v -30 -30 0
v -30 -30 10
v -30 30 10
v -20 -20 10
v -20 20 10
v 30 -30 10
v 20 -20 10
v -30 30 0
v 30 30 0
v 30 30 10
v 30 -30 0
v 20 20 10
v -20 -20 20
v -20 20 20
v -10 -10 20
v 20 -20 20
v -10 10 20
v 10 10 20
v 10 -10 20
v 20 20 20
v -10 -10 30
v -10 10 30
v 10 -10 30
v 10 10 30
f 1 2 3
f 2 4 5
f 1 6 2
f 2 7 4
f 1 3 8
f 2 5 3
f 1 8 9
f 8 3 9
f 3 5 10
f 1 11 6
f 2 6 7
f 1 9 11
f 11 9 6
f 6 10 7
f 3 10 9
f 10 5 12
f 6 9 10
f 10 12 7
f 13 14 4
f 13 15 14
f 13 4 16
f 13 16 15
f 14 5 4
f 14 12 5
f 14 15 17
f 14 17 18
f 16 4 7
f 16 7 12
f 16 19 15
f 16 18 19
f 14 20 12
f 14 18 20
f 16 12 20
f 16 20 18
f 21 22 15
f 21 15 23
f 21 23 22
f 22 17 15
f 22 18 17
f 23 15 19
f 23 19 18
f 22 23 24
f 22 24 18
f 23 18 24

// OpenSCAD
// 3段の階段状ピラミッド
// 各段の高さ (mm)
h = 10;

union() {
    // 1段目（底辺）: 60mm × 60mm × 10mm
    translate([-30, -30, 0])
        cube([60, 60, h]);

    // 2段目: 40mm × 40mm × 10mm（中心を揃えて1段目の上に載せる）
    translate([-20, -20, h])
        cube([40, 40, h]);

    // 3段目（最上段）: 20mm × 20mm × 10mm（中心を揃えて2段目の上に載せる）
    translate([-10, -10, 2 * h])
        cube([20, 20, h]);
}
